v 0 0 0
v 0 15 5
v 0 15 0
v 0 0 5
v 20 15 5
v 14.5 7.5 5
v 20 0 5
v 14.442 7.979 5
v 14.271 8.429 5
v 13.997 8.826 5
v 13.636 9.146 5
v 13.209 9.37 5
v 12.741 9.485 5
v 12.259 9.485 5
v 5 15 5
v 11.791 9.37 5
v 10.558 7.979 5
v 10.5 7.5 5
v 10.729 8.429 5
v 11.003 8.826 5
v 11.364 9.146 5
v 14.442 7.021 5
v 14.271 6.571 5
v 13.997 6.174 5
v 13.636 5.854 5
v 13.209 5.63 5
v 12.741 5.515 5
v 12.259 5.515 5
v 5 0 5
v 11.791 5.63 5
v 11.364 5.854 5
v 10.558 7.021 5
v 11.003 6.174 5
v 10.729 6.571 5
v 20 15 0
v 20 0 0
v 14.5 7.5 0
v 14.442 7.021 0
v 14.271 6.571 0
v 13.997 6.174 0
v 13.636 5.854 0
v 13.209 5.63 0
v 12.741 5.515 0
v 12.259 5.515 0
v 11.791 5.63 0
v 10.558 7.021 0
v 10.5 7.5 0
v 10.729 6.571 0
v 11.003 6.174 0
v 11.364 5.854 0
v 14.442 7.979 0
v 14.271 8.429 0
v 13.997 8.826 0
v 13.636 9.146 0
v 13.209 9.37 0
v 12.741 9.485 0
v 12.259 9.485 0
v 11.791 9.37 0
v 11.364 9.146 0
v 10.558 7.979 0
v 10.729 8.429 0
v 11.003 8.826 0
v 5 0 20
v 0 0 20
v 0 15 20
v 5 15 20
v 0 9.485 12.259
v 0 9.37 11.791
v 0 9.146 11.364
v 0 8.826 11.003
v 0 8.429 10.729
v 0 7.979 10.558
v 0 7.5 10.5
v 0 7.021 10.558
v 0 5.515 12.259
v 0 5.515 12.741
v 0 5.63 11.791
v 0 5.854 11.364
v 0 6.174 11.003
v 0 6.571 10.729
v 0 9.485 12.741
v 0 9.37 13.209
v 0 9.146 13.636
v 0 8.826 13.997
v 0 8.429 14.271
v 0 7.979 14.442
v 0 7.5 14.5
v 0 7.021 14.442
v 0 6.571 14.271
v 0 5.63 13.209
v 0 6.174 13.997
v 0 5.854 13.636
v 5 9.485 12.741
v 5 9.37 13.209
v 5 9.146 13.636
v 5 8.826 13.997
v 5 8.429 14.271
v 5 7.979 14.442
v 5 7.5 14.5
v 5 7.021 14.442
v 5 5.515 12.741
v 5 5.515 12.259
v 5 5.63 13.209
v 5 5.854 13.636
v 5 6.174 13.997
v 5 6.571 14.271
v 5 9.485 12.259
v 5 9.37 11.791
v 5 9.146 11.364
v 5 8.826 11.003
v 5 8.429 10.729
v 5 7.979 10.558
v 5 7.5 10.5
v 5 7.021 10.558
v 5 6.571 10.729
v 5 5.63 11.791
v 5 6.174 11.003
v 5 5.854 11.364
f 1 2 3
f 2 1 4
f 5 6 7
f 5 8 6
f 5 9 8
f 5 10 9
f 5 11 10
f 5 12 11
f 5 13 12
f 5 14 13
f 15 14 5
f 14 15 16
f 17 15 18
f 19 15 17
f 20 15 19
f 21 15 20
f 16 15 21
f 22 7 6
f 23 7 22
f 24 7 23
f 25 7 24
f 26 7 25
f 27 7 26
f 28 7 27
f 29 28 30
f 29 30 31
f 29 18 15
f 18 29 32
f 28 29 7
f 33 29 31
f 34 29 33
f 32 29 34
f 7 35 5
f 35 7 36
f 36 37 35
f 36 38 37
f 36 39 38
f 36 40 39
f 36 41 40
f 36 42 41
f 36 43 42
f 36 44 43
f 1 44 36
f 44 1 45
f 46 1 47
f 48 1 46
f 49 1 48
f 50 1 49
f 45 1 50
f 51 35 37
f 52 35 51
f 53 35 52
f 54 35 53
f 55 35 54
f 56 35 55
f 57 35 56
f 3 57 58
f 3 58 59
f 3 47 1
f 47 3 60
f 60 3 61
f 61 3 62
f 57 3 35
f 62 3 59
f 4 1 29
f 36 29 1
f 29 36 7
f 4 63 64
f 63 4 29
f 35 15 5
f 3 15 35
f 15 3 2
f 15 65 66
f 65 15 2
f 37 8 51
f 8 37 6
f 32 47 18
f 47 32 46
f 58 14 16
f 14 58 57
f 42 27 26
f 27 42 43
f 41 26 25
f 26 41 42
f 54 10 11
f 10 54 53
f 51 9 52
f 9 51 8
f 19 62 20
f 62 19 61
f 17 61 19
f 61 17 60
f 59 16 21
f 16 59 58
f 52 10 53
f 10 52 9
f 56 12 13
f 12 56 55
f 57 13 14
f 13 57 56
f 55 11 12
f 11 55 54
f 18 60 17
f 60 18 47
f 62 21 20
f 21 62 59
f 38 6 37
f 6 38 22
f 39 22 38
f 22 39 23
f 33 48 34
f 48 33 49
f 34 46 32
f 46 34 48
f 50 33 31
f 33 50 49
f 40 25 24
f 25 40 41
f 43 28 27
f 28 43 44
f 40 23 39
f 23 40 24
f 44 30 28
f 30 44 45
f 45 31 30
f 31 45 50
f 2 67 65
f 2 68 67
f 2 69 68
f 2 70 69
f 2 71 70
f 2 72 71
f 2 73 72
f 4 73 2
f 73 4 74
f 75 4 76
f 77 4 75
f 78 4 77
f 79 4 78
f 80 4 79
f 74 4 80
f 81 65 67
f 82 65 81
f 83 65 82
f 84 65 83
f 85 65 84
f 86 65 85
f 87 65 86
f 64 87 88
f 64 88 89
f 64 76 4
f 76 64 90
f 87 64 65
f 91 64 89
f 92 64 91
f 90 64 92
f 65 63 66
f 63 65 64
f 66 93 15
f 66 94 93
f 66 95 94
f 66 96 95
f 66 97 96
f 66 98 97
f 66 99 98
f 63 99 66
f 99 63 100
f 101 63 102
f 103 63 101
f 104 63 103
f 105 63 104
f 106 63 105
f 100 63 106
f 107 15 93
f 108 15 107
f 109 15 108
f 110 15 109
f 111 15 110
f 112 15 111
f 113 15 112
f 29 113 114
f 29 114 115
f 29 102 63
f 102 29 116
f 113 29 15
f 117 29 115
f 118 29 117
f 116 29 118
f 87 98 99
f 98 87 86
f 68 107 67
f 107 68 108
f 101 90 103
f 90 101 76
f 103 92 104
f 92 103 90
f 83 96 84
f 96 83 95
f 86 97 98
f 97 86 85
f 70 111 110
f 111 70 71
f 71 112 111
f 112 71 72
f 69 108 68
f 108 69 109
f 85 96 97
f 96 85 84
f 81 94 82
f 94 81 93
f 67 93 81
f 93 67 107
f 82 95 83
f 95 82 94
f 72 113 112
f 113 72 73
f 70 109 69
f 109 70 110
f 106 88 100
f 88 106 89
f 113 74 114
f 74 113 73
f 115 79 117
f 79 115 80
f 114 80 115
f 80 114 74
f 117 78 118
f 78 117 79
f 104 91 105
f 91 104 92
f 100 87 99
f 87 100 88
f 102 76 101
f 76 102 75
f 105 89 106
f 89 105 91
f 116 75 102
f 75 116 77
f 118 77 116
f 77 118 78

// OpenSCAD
// file: Parameters.scad
/* Frame and Hardware Parameters */
bracketThickness = 5;
extrusionThickness = 15;
narrowScrewHoleSpacing = 15;
wideScrewHoleSpacing = 30;
screwHoleDiam = 4;


/* Design Parameters */
XYSpacing = 20;
platformLength = 153;

/* Gear Parameters */
gearDiam = 30;

/*clamp parameters*/
clampWidth = 30;


/* 608 Bearing Mount Parameters */
bearingHolderWallThickness = 3;
bearingHolderWallHeight = 4;
bearingRadius = 11;

/* rod parameters */
rodClearance = 10;
rodDiam = 8;

/* top bracket parameters */
gearSpacing = 10; // spacing between gear and extrusion
exteriorSpace = 10; // spacing beyond the bearing mount

/* lower bracket parameters */
footHeight = 10;
footDimension = bracketThickness + extrusionThickness;
bracketInnerDimension = 30;

/* nema mount size */
nemaMountSize = 40;
slideyNemaMountSize = 60;

/* Z axis Parameters */
ZSupportSpacing = 50; //how wide the Z supports are
zSupportBeamSpacing = nemaMountSize / 2; //how far the z supports are from the beam

$fs = .5;
$fa = 3;
// main file
include <Parameters.scad>;

bracketInnerDimension = extrusionThickness - bracketThickness;

difference () {
	cube([extrusionThickness + bracketThickness, extrusionThickness, bracketThickness]);
	translate([extrusionThickness / 2 + bracketThickness, extrusionThickness / 2, - 2.5])cylinder (h = 100, d = screwHoleDiam);
}

translate([5, 0, 0])
rotate([0, -90, 0])
difference () {
	cube([extrusionThickness + bracketThickness, extrusionThickness, bracketThickness]);
	translate([extrusionThickness / 2 + bracketThickness, extrusionThickness / 2, - 2.5])cylinder (h = 100, d = screwHoleDiam);
}
